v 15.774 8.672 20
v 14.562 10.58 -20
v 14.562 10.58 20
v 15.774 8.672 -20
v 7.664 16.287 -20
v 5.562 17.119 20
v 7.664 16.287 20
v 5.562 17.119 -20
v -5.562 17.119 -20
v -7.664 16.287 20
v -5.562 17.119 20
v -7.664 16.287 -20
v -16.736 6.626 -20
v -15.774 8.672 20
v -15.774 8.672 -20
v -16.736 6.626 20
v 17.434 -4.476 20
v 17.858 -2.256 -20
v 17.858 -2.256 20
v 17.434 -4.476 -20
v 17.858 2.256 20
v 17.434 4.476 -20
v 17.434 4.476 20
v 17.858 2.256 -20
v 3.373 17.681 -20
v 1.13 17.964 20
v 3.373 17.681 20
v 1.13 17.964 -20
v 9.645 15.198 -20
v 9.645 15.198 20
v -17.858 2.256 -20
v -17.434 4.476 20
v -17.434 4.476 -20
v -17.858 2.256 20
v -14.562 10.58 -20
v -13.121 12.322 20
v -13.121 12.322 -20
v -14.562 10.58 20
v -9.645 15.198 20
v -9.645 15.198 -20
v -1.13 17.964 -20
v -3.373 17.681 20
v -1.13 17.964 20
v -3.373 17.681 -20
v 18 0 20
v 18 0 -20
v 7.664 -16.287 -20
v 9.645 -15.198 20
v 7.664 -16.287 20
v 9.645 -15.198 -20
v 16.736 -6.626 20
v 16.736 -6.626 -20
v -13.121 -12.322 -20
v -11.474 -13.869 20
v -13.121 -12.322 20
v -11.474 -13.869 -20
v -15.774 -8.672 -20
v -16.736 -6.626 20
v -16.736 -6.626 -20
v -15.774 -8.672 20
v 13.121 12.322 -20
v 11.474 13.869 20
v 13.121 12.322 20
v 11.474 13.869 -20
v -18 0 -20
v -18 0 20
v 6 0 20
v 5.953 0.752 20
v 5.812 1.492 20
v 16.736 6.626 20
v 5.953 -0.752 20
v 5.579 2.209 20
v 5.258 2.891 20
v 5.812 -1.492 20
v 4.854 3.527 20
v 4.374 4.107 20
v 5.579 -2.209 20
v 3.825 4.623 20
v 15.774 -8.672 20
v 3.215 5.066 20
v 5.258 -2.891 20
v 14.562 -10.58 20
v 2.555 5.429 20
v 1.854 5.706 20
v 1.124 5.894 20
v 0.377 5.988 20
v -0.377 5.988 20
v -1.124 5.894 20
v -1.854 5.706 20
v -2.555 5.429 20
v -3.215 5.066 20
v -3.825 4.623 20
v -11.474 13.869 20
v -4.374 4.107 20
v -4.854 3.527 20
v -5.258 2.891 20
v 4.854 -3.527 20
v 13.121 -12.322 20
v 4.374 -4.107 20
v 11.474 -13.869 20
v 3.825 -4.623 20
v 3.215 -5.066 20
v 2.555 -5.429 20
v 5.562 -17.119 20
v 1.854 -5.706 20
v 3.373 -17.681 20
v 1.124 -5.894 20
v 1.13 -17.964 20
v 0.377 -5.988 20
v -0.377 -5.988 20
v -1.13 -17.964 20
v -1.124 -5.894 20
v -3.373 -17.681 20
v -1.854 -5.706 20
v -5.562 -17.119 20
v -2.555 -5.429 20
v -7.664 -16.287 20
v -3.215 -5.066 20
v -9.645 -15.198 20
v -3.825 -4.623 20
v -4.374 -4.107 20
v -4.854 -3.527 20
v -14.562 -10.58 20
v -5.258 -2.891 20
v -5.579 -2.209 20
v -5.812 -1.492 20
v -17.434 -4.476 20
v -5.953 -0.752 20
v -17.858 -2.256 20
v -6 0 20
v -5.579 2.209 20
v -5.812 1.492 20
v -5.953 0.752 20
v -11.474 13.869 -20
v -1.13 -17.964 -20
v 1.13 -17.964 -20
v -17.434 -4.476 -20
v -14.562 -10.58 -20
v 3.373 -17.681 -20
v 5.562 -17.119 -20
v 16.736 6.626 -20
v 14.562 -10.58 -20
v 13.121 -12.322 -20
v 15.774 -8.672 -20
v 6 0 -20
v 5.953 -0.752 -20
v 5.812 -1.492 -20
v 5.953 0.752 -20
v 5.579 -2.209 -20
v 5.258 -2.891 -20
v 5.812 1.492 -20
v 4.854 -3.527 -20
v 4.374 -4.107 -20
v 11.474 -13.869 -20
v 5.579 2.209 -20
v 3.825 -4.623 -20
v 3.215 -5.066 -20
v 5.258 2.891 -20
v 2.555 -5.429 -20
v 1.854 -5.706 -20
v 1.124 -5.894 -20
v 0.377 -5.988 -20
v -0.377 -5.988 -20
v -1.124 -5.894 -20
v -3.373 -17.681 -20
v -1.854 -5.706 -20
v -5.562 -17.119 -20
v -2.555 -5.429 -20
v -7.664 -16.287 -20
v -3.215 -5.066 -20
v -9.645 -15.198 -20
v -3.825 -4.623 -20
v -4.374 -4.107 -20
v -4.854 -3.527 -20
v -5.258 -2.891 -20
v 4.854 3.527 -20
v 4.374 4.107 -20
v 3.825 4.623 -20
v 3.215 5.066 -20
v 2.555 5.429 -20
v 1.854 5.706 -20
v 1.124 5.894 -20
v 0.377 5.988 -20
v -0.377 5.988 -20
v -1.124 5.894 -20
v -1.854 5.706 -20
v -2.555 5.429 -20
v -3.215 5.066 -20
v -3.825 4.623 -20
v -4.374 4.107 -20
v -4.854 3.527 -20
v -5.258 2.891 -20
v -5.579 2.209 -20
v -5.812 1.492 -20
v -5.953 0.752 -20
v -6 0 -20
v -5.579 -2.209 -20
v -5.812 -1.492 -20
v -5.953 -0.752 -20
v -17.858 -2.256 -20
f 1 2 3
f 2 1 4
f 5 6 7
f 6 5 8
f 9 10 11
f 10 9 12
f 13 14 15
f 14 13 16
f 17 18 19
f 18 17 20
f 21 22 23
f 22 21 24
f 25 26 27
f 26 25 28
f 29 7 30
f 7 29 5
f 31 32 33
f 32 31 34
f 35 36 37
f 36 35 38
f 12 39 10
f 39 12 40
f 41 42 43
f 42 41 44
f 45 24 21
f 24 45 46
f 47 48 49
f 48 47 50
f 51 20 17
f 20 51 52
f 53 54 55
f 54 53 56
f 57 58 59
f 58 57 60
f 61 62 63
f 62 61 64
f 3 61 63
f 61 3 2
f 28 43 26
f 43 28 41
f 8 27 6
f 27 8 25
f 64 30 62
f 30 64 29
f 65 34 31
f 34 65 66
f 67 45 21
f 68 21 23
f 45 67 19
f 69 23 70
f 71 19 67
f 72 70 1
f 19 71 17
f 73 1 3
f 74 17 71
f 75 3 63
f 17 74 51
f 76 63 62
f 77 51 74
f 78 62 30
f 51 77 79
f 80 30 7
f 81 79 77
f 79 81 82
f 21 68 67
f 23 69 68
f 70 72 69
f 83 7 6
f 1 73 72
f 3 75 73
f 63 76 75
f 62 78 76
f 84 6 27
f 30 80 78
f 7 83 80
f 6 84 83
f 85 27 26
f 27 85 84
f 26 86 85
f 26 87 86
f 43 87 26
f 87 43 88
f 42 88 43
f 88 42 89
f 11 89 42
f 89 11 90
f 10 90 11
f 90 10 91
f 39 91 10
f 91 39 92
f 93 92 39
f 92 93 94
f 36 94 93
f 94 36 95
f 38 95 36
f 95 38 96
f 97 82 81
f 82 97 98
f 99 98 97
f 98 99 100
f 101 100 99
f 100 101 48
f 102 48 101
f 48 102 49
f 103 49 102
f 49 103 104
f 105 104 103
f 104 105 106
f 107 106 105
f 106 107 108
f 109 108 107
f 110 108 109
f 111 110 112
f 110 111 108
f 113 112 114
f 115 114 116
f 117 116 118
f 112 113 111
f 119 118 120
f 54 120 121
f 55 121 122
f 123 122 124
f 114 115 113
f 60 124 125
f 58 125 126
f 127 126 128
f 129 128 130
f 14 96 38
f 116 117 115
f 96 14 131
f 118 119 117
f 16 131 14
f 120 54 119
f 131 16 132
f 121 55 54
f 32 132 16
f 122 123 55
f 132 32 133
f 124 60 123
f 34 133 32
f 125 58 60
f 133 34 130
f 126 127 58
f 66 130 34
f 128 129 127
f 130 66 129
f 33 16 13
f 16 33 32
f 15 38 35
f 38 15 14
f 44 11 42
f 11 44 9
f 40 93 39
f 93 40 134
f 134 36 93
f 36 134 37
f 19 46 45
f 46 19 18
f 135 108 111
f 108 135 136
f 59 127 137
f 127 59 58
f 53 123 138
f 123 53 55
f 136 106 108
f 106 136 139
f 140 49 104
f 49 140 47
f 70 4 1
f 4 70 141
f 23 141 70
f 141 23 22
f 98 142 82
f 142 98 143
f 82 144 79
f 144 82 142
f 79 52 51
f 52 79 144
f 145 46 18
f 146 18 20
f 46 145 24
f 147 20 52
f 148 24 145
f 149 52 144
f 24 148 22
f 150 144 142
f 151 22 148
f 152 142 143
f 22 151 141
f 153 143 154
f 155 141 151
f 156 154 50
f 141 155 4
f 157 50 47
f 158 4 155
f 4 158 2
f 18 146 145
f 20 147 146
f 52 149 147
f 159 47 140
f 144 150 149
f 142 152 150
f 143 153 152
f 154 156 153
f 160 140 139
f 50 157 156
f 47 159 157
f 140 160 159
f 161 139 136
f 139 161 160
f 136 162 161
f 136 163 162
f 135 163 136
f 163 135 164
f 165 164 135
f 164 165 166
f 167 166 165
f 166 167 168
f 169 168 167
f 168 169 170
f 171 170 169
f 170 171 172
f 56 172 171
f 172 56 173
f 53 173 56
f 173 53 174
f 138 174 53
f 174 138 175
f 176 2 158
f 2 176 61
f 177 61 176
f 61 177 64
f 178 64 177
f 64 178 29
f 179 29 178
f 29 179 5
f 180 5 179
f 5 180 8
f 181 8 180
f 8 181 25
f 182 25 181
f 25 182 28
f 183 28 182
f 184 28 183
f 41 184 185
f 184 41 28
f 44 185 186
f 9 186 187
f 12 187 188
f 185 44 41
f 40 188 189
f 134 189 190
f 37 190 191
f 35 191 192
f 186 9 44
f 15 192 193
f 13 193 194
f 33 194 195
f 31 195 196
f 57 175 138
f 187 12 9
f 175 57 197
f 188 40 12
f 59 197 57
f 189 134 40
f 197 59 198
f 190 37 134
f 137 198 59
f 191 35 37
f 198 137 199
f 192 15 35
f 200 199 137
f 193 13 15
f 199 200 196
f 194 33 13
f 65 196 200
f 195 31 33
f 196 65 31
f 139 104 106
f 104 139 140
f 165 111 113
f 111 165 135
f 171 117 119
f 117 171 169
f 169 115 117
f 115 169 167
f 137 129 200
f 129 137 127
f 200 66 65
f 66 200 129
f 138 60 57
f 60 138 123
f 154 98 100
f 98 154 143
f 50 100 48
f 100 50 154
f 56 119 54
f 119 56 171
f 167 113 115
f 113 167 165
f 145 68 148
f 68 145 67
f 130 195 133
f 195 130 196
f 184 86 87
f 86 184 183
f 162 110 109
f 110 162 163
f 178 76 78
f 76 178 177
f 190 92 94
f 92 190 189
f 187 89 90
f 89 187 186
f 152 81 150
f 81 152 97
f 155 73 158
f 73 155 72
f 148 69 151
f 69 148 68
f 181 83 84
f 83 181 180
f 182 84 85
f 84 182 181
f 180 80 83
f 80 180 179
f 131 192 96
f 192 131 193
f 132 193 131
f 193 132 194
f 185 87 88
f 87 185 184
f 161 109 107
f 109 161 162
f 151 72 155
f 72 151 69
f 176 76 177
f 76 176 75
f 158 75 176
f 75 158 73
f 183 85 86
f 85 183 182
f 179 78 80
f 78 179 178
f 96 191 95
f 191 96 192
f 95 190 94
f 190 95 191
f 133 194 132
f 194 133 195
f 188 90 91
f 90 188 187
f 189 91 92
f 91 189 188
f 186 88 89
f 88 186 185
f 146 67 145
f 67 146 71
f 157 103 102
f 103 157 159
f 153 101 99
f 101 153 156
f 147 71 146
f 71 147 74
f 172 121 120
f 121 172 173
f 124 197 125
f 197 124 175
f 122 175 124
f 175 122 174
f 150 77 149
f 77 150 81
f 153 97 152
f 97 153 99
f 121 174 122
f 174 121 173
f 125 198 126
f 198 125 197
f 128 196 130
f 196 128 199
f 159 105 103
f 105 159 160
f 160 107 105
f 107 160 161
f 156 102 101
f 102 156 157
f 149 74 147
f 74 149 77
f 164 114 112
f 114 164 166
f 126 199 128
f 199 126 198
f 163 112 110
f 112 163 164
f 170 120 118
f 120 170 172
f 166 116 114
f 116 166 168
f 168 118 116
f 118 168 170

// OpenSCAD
$fn = 50;


difference() {
	union() {
		translate(v = [0, 0, -20.0000000000]) {
			cylinder(h = 40, r = 18.0000000000);
		}
	}
	union() {
		translate(v = [0, 0, -100.0000000000]) {
			cylinder(h = 200, r = 6);
		}
	}
}
